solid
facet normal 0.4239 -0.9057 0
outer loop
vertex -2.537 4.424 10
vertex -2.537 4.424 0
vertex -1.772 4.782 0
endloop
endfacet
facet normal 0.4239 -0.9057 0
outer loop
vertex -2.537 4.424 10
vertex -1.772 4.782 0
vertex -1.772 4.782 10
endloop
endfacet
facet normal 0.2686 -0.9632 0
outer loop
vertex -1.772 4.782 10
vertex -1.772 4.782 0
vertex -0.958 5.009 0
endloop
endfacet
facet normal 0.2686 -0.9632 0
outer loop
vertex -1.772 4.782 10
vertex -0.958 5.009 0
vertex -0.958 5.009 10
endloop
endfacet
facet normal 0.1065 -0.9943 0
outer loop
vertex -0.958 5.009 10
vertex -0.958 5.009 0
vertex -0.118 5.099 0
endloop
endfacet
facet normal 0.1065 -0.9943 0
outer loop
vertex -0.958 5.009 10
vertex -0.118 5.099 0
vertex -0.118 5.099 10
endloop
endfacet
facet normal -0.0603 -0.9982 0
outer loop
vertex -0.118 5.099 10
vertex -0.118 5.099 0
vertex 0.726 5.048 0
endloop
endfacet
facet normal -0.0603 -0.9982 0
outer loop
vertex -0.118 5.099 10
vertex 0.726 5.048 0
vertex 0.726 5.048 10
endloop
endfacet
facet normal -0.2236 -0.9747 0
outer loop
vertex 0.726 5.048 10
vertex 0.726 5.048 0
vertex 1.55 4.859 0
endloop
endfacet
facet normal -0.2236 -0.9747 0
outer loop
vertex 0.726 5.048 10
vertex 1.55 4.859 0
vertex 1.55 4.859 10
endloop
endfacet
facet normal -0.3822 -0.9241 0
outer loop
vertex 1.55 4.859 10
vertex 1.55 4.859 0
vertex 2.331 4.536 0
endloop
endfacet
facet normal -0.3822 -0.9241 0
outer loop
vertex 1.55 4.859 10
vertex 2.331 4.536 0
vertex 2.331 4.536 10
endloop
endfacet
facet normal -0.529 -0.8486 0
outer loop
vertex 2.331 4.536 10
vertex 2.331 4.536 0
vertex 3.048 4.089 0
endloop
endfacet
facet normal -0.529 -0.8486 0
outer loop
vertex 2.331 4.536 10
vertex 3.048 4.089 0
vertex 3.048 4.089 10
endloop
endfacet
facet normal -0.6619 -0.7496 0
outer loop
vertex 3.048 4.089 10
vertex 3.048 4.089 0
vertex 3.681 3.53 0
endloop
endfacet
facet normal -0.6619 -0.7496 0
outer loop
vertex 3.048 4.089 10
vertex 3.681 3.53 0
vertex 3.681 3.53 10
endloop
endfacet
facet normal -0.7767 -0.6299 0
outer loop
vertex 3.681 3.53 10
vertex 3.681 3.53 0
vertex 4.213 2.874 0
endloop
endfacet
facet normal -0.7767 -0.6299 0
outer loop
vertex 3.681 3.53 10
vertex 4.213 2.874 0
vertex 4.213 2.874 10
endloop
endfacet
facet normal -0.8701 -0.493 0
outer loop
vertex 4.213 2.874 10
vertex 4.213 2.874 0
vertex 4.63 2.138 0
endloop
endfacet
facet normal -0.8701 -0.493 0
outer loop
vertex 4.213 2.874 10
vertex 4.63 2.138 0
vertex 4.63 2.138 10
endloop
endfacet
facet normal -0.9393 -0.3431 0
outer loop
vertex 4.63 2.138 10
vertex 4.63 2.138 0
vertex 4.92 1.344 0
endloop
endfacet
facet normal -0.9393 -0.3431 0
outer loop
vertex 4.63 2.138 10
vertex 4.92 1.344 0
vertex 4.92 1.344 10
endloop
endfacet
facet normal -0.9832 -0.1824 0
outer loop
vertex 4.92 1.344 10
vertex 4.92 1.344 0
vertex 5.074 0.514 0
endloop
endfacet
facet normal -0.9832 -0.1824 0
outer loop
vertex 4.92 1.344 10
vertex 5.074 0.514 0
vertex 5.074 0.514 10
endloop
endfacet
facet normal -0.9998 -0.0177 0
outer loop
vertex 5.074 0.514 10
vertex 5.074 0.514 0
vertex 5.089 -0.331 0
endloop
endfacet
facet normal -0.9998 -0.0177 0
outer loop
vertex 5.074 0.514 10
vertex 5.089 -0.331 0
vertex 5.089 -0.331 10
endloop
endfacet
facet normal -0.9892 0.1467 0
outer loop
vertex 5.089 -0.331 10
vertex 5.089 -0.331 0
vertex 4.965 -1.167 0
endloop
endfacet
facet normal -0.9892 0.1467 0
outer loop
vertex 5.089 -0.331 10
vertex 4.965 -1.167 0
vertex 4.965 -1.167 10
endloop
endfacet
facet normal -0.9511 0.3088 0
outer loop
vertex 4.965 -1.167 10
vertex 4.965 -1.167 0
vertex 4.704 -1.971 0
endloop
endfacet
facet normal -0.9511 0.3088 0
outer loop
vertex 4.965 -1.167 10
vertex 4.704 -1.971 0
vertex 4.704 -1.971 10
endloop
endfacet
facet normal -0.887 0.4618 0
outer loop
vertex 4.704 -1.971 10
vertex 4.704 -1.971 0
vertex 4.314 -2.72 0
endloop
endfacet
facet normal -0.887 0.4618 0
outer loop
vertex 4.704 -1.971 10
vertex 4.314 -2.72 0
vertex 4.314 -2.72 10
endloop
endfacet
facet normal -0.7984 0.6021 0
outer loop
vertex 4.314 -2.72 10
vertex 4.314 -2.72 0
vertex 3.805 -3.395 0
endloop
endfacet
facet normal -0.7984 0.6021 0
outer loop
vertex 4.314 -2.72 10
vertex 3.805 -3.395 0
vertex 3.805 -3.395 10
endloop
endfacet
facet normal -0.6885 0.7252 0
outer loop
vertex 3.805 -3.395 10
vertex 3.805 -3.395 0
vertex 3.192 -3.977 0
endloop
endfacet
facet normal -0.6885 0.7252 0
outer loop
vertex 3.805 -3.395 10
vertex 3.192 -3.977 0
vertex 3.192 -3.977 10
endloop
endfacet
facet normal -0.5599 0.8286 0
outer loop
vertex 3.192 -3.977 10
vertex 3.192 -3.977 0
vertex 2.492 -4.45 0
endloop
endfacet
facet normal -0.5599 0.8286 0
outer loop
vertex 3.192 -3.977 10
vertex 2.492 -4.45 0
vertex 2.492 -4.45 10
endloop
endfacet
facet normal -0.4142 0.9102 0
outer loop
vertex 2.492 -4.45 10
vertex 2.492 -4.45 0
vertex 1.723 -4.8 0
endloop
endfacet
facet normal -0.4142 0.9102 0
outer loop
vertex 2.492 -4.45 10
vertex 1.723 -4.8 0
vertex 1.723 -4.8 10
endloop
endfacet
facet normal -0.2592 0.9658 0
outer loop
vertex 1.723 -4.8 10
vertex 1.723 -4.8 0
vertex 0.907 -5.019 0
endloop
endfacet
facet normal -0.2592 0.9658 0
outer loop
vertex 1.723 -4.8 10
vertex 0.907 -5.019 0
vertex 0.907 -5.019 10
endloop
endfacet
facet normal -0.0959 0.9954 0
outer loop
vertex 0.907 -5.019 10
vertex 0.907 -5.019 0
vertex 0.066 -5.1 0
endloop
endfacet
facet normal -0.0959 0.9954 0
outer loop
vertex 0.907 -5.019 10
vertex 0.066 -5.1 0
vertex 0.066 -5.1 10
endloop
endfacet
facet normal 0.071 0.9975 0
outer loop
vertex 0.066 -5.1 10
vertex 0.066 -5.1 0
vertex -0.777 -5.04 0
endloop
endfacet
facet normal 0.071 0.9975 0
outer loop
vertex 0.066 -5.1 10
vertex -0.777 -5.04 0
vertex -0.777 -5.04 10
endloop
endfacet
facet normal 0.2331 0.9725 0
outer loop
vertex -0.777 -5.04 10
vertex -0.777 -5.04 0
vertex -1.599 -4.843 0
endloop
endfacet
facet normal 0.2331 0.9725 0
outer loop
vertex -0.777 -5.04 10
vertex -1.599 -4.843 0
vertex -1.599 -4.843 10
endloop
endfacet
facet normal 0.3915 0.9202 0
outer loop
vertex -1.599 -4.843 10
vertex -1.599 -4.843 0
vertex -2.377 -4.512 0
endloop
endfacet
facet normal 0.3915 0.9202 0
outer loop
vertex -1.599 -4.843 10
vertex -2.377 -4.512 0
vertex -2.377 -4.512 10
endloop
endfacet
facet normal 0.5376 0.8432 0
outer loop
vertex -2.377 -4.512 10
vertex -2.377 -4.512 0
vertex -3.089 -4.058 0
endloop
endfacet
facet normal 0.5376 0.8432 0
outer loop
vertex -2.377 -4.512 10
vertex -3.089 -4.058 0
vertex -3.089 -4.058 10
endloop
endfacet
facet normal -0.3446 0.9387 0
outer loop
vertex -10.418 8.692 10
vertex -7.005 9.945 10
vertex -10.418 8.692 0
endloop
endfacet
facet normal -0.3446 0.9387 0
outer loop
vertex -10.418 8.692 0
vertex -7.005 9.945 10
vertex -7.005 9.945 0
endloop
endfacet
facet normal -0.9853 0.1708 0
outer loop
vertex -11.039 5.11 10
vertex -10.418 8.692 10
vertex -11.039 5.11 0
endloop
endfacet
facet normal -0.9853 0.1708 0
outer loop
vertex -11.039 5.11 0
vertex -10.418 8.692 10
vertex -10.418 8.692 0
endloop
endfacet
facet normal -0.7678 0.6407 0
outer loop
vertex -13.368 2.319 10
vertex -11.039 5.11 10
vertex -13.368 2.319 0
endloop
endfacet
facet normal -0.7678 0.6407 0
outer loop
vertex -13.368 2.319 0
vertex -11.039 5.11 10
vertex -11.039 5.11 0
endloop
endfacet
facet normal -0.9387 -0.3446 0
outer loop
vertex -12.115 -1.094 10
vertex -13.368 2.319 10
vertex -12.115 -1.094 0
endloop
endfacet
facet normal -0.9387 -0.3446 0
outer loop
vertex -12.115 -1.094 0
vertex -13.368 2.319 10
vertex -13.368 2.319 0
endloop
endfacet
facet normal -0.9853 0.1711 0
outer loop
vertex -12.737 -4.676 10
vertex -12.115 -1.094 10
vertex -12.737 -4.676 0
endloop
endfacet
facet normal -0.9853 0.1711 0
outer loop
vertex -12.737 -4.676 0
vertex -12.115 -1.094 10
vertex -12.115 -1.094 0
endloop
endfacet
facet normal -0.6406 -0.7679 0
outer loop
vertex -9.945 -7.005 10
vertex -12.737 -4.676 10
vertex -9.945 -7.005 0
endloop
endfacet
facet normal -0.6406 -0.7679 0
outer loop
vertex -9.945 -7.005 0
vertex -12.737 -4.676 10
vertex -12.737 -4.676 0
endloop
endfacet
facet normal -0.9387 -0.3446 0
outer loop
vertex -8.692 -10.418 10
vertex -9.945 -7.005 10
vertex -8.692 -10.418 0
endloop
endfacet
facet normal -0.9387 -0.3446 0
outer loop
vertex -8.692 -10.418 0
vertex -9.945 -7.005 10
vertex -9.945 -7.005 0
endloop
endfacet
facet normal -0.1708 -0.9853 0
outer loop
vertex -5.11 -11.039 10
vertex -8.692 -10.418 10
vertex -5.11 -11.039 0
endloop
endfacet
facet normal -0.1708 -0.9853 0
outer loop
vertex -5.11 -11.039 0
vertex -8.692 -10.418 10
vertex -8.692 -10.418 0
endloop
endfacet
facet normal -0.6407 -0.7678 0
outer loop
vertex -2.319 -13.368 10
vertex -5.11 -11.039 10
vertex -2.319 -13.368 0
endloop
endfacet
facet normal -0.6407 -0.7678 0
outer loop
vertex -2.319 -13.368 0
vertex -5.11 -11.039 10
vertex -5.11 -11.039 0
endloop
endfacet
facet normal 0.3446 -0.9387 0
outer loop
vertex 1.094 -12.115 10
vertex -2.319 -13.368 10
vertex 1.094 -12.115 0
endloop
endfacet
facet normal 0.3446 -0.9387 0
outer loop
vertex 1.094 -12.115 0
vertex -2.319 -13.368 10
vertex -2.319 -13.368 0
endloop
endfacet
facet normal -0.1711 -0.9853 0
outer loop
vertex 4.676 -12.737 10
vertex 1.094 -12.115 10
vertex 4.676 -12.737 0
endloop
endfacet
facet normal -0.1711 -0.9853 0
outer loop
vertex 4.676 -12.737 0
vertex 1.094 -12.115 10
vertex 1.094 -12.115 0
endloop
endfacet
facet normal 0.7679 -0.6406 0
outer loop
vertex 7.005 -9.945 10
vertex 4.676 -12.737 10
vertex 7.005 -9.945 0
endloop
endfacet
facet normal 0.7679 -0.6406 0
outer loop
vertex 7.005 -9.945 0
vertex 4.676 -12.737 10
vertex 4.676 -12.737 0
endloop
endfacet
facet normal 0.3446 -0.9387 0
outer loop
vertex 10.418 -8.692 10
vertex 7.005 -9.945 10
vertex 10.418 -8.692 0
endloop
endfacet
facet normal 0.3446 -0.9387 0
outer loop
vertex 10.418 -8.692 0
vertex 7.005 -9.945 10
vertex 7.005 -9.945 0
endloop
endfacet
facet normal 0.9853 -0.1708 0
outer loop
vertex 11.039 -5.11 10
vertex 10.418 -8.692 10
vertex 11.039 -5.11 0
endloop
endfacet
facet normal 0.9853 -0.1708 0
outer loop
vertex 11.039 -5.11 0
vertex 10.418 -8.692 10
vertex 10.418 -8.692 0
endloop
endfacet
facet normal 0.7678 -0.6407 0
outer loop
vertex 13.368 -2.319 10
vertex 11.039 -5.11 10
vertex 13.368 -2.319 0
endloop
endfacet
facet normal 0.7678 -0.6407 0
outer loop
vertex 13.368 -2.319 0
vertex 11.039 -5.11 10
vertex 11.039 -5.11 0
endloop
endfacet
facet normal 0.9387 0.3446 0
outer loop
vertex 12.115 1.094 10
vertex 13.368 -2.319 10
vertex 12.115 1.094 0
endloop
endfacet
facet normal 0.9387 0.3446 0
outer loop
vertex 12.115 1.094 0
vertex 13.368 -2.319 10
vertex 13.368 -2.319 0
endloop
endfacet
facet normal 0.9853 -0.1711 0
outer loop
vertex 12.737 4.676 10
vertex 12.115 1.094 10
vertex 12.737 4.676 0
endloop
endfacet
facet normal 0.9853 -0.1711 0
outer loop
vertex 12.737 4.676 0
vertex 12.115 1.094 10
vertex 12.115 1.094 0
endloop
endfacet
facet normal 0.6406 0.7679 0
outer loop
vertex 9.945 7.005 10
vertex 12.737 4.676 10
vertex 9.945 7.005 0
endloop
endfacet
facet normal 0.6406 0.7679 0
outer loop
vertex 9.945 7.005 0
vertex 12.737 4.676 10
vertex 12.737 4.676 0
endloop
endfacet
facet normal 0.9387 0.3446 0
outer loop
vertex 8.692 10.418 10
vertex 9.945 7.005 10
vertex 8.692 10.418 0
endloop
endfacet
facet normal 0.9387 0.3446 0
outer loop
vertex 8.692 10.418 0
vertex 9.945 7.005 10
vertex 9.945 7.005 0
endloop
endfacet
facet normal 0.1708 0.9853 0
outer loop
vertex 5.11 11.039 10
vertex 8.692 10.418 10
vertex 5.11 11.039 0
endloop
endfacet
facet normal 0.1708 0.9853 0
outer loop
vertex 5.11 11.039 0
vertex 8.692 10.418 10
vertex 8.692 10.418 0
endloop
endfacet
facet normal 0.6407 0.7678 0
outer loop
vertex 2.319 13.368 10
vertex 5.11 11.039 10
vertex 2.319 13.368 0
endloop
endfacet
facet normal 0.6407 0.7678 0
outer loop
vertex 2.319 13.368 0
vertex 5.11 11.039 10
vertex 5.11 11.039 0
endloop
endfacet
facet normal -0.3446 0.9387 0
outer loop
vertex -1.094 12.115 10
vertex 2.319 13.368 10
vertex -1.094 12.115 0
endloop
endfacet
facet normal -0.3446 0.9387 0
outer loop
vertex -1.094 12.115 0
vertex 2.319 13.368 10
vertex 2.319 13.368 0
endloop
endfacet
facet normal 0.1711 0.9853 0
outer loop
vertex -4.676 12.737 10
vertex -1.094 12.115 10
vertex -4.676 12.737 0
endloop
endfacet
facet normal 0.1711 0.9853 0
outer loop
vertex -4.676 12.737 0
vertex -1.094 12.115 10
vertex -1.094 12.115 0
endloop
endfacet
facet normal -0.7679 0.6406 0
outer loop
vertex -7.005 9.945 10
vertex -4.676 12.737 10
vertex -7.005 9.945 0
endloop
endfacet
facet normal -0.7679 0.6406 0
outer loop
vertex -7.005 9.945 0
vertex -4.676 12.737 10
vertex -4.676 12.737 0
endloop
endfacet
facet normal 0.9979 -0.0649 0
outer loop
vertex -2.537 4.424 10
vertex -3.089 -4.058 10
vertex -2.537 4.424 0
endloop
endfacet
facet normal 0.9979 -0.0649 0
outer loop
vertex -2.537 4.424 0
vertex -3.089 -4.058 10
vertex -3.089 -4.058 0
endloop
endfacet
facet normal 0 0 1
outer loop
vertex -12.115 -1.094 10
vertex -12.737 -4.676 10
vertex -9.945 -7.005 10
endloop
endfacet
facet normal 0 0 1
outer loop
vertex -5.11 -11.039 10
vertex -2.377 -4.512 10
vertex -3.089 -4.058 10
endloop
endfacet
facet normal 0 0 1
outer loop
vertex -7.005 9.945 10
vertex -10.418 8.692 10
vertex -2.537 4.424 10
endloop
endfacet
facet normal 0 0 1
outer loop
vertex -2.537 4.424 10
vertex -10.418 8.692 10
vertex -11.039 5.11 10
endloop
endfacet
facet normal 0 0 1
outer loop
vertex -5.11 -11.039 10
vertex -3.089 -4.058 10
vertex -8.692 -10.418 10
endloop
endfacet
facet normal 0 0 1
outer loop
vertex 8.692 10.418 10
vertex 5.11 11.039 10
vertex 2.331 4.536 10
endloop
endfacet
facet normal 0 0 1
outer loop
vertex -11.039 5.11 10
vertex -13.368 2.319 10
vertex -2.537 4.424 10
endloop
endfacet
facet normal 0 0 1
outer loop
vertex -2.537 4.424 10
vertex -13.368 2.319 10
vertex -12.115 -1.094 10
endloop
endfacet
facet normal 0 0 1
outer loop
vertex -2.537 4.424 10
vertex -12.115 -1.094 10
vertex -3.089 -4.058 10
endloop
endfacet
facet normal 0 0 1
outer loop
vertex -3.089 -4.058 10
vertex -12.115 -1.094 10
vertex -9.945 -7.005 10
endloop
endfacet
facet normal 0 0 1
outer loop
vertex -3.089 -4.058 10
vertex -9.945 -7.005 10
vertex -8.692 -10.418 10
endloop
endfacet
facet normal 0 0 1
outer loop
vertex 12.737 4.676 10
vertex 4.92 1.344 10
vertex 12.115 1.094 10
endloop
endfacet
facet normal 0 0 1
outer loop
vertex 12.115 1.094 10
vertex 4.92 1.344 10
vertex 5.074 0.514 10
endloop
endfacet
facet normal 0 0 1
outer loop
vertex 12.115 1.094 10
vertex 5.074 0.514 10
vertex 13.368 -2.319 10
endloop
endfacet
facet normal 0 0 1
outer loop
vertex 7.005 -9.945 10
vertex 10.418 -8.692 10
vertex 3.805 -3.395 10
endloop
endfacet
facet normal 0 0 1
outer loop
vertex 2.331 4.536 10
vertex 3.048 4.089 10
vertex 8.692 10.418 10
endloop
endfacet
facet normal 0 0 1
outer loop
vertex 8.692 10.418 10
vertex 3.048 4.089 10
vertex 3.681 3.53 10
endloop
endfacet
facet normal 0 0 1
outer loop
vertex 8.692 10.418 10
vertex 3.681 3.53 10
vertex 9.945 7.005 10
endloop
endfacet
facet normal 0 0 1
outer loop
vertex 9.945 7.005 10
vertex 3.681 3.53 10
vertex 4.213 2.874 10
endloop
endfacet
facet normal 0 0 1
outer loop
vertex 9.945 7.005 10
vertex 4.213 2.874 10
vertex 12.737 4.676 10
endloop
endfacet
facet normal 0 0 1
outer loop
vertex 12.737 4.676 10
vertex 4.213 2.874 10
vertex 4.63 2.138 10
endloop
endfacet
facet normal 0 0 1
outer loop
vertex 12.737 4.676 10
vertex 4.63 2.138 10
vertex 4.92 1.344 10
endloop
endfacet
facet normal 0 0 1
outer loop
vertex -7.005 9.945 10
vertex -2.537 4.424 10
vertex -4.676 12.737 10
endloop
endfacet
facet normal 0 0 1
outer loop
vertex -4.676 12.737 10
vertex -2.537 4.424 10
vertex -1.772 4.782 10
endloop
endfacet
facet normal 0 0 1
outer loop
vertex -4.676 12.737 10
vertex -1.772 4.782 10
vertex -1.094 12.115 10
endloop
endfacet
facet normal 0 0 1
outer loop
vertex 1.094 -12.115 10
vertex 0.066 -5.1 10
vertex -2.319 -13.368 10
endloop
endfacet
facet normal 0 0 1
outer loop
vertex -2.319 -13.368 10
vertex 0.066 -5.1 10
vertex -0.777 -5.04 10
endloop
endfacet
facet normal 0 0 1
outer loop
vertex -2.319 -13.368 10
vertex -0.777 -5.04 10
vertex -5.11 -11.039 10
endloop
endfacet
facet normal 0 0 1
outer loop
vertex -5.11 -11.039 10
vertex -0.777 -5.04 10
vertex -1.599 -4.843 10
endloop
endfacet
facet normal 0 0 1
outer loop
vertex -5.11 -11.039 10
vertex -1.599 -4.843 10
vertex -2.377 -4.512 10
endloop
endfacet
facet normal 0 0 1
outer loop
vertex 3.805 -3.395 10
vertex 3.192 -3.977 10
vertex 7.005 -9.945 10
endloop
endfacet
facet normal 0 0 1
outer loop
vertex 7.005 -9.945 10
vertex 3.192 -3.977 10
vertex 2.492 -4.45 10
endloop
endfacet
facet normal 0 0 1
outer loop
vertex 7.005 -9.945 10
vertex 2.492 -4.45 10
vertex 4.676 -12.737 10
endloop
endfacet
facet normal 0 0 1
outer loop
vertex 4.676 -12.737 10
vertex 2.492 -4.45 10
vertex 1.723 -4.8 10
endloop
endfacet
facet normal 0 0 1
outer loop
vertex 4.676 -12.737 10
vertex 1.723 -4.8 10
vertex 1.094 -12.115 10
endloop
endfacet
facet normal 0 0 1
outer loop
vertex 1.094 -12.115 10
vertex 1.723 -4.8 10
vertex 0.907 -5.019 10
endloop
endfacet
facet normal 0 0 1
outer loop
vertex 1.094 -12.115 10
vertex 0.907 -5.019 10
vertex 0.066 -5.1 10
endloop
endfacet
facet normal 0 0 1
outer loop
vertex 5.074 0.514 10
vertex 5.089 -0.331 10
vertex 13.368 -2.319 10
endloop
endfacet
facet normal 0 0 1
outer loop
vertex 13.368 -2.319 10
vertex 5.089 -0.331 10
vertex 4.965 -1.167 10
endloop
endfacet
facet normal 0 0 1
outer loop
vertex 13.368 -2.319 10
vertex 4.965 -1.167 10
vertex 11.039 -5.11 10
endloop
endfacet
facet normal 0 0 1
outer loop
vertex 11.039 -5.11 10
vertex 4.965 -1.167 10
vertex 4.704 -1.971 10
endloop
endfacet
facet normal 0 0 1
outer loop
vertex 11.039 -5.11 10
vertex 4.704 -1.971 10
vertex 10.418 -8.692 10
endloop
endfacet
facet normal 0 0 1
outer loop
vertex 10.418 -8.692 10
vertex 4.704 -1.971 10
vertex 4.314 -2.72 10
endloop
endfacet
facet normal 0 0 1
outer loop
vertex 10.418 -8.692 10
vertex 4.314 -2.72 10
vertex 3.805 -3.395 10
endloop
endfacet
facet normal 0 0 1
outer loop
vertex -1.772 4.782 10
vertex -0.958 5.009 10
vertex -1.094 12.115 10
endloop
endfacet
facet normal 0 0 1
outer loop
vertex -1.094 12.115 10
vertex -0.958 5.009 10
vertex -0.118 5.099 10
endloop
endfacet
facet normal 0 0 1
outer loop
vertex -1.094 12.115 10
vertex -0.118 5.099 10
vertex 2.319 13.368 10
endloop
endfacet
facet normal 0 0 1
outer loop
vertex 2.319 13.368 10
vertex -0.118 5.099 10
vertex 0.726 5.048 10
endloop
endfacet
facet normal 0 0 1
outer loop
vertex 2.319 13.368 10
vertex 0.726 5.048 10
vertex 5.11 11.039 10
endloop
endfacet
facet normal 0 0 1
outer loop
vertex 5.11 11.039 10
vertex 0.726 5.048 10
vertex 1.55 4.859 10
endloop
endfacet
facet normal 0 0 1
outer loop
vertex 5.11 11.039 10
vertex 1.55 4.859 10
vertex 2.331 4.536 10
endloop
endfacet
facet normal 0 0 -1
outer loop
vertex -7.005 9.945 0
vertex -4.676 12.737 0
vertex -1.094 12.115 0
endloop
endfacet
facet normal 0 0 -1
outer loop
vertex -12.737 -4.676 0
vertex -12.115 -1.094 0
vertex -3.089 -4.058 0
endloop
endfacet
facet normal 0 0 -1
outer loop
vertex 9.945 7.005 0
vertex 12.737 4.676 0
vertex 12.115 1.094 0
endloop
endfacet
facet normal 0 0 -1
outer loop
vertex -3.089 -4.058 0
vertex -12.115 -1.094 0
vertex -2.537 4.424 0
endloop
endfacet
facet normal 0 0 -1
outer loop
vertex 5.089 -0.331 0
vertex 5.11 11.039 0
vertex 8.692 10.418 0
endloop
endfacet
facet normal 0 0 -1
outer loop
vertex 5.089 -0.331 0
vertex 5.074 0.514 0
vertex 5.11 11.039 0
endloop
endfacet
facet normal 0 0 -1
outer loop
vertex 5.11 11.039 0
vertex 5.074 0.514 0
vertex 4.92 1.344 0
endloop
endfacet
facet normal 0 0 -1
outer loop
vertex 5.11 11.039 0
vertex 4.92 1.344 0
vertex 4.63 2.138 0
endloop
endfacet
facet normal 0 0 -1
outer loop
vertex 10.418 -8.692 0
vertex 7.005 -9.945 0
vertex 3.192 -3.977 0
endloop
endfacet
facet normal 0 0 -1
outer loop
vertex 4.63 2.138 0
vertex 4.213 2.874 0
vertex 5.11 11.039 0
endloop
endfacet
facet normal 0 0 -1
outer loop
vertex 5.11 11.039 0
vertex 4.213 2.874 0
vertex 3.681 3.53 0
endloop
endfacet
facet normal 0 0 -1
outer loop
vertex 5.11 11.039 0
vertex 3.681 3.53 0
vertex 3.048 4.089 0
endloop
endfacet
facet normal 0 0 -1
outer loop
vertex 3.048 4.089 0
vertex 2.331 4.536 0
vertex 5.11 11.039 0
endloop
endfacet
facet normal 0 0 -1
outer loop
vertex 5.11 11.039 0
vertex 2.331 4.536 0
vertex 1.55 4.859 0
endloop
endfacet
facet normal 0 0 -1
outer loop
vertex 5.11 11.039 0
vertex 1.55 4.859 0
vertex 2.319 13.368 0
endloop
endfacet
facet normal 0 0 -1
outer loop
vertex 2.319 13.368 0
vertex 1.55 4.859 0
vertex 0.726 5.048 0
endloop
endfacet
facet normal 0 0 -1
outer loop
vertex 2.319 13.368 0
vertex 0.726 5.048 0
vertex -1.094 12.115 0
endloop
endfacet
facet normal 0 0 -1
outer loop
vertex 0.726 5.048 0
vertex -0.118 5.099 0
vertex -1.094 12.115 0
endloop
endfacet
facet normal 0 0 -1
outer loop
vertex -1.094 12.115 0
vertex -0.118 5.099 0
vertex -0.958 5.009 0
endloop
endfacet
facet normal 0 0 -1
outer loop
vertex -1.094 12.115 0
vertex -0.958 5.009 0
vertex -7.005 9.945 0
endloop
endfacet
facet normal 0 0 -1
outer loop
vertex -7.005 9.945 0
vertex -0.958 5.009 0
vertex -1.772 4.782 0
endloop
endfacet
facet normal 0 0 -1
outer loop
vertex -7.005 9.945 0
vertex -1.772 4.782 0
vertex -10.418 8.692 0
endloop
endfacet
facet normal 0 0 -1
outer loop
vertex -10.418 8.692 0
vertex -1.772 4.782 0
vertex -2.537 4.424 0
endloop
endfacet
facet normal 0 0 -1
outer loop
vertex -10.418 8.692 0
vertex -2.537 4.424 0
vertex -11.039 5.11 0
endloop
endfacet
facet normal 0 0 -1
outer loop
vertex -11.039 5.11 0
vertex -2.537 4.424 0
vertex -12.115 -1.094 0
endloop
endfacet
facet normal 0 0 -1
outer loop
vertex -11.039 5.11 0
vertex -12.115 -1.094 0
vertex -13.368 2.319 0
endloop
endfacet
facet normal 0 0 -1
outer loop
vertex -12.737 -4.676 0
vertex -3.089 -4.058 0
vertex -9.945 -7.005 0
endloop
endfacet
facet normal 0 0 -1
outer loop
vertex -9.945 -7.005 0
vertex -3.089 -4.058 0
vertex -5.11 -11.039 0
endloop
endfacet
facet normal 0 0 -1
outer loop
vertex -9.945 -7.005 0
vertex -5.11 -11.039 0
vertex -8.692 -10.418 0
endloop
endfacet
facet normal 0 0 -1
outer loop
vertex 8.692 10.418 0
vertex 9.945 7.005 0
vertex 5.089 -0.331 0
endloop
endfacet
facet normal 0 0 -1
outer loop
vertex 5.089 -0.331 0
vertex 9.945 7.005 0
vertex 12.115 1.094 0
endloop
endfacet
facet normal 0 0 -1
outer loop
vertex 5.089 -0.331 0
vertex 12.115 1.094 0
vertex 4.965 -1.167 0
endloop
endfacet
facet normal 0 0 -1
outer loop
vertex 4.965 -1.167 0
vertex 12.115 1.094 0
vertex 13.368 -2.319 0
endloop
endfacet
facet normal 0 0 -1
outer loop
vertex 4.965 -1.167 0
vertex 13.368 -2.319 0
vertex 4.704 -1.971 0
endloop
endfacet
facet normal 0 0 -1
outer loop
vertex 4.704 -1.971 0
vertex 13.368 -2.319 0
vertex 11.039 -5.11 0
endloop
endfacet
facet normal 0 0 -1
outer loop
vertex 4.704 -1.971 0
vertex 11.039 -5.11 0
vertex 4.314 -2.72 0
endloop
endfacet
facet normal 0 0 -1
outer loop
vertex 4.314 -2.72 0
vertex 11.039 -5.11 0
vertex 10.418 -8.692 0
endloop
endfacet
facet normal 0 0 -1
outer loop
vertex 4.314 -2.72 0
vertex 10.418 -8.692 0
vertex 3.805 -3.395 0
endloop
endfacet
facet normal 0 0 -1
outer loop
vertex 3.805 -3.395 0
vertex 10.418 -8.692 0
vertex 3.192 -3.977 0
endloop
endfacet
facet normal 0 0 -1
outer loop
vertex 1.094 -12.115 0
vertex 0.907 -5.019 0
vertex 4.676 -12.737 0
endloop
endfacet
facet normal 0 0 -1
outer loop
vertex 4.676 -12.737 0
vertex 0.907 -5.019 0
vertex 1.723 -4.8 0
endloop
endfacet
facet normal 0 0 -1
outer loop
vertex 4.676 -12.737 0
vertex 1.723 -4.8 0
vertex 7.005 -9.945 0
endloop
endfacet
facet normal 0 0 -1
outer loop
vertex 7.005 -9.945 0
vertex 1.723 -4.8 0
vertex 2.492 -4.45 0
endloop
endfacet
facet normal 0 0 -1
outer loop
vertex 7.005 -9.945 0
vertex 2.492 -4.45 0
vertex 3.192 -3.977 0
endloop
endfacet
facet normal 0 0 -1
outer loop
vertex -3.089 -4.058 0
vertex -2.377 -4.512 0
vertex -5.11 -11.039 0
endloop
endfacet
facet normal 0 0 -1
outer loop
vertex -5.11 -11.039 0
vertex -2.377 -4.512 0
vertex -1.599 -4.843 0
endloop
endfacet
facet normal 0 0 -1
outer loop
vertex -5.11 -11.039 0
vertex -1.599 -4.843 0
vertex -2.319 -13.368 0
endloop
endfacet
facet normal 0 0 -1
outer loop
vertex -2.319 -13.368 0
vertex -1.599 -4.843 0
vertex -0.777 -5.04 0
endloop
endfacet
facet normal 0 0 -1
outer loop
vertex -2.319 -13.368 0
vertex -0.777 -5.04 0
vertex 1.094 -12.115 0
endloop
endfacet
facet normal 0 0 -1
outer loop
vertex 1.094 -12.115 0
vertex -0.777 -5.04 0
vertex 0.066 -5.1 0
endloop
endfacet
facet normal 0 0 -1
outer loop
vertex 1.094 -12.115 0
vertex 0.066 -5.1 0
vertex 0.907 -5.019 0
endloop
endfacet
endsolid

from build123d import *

# Parameters (mm, degrees)
BOSS_EXTRUDE2_DEPTH = 10


with BuildPart() as part:
    # Sketch1 → Boss-Extrude2 (new body)
    with BuildSketch(Plane.XY):
        Polygon((9.945212763, 7.004832947), (8.692356553, 10.417594294), (5.110390425, 11.038969663), (2.319004447, 13.368079582), (-1.0937569, 12.115223372), (-4.675723029, 12.736598741), (-7.004832947, 9.945212763), (-10.417594294, 8.692356553), (-11.038969663, 5.110390425), (-13.368079582, 2.319004447), (-12.115223372, -1.0937569), (-12.736598741, -4.675723029), (-9.945212763, -7.004832947), (-8.692356553, -10.417594294), (-5.110390425, -11.038969663), (-2.319004447, -13.368079582), (1.0937569, -12.115223372), (4.675723029, -12.736598741), (7.004832947, -9.945212763), (10.417594294, -8.692356553), (11.038969663, -5.110390425), (13.368079582, -2.319004447), (12.115223372, 1.0937569), (12.736598741, 4.675723029), align=None)
        with BuildLine():
            Line((-3.08920951, -4.05792861), (-2.537148142, 4.424124694))
            ThreePointArc((-2.537148142, 4.424124694), (5.089231982, -0.331236821), (-3.08920951, -4.05792861))
        make_face(mode=Mode.SUBTRACT)
    extrude(amount=BOSS_EXTRUDE2_DEPTH)


solid = part.part
